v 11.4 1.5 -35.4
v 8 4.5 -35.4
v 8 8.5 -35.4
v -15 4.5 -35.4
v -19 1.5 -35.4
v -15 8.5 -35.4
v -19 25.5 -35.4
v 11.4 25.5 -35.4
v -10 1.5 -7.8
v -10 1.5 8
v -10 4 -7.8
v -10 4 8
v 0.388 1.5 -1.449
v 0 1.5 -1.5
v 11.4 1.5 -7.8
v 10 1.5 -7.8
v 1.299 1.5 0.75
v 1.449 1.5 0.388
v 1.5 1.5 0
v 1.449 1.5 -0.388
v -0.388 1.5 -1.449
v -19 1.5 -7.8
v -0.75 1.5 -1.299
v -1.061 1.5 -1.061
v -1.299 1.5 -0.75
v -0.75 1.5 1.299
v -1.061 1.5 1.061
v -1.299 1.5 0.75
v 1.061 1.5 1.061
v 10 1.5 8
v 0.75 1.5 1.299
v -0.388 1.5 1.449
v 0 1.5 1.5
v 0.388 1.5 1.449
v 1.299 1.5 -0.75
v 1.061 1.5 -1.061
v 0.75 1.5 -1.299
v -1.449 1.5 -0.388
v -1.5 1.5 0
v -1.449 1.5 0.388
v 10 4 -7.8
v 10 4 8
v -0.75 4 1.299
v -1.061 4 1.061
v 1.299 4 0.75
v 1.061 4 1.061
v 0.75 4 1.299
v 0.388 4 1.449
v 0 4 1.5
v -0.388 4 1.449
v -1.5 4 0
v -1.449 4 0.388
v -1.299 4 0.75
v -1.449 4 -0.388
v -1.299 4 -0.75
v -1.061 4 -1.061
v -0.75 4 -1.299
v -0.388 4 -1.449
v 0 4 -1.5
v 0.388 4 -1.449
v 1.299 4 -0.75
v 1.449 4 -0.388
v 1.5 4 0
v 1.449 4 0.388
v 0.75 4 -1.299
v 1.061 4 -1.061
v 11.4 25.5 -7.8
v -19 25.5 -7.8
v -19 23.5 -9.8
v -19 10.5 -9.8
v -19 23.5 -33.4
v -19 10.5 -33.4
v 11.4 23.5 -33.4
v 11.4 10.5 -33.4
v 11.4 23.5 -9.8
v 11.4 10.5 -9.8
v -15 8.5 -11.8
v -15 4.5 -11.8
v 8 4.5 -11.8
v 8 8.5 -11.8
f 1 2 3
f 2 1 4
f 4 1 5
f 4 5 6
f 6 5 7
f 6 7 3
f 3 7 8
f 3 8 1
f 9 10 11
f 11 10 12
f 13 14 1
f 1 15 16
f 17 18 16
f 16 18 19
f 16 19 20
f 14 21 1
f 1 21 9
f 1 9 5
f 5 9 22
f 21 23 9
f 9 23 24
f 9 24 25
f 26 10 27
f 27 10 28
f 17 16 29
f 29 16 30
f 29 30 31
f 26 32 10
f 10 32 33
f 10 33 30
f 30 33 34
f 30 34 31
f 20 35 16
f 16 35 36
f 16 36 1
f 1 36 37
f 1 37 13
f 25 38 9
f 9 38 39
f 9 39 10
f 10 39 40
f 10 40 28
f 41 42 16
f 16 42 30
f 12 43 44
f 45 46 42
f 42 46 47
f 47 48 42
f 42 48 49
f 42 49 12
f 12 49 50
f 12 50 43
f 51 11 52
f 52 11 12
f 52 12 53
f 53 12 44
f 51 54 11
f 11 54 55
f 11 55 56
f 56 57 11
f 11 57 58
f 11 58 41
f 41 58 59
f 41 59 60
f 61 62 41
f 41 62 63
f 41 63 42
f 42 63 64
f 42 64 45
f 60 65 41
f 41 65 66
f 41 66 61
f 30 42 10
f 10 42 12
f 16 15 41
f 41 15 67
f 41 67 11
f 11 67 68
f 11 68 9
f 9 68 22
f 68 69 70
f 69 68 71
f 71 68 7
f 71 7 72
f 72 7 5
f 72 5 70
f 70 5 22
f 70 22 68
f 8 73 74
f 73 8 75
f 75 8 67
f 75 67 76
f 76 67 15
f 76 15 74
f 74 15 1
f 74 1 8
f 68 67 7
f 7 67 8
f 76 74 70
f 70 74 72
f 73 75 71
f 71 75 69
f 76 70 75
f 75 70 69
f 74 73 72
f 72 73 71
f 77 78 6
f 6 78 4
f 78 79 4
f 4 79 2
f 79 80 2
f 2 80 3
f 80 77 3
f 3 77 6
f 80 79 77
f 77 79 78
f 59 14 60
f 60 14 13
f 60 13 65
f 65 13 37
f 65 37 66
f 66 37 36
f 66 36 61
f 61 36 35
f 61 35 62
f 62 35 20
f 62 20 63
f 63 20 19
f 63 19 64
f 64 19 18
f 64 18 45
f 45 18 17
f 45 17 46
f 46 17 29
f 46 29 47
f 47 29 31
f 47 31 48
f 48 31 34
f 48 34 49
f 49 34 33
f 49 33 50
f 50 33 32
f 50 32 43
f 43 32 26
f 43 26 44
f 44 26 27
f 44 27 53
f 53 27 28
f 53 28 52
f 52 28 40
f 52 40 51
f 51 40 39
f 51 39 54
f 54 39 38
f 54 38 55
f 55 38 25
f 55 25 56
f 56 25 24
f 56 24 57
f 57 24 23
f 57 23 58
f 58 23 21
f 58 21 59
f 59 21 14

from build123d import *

# Parameters (mm, degrees)
S_BOX1_W       = 20
S_BOX1_H       = 2.5
BOSS_1_DEPTH   = 42
S_BOX2_W       = 30.4
S_BOX2_H       = 24
BOSS_2_DEPTH   = 27.6
S_CUT3_W       = 30.6
S_CUT3_H       = 13
POCKET_3_DEPTH = 23.6
S_CUT4_W       = 23
S_CUT4_H       = 4
POCKET_4_DEPTH = 23.7
S_HOLE5_R      = 1.5
HOLE_5_DEPTH   = 2.7


with BuildPart() as part:
    # S_box1 → Boss_1 (new body)
    with BuildSketch(Plane.XY.offset(-34)):
        with Locations((0, 2.75)):
            Rectangle(S_BOX1_W, S_BOX1_H)
    extrude(amount=BOSS_1_DEPTH)

    # S_box2 → Boss_2 (add)
    with BuildSketch(Plane.XY.offset(-35.4)):
        with Locations((-3.8, 13.5)):
            Rectangle(S_BOX2_W, S_BOX2_H)
    extrude(amount=BOSS_2_DEPTH)

    # S_cut3 → Pocket_3 (cut)
    with BuildSketch(Plane.XY.offset(-33.4)):
        with Locations((-3.8, 17)):
            Rectangle(S_CUT3_W, S_CUT3_H)
    extrude(amount=POCKET_3_DEPTH, mode=Mode.SUBTRACT)

    # S_cut4 → Pocket_4 (cut)
    with BuildSketch(Plane.XY.offset(-35.5)):
        with Locations((-3.5, 6.5)):
            Rectangle(S_CUT4_W, S_CUT4_H)
    extrude(amount=POCKET_4_DEPTH, mode=Mode.SUBTRACT)

    # S_hole5 → Hole_5 (cut)
    with BuildSketch(Plane(origin=(0, 1.4, 0), x_dir=(1, 0, 0), z_dir=(0, 1, 0))):
        with Locations(Location((0, 0, 0), (0, 0, 90))):
            Circle(S_HOLE5_R)
    extrude(amount=HOLE_5_DEPTH, mode=Mode.SUBTRACT)


solid = part.part
